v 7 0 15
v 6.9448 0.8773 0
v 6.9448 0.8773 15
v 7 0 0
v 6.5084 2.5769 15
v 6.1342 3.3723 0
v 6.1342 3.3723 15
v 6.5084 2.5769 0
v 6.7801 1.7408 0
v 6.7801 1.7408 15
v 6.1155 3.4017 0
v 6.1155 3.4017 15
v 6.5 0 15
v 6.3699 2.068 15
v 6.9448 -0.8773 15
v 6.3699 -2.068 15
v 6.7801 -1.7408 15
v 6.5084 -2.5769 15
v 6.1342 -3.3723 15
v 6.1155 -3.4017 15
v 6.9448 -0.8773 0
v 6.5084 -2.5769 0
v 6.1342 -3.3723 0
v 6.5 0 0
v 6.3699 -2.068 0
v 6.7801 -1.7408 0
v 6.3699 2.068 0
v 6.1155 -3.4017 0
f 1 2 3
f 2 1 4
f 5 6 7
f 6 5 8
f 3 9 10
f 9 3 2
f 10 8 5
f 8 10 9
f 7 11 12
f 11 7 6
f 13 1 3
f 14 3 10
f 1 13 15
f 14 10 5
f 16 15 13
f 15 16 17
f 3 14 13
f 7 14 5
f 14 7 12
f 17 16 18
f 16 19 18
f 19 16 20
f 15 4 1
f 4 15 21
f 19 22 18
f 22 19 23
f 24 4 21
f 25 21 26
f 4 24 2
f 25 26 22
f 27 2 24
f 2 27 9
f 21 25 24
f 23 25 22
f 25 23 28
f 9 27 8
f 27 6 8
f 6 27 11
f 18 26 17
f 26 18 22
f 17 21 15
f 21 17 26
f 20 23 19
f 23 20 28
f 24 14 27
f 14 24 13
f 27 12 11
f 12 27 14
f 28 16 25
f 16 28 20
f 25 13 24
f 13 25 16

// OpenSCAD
$fn = 50;


difference() {
	union() {
		cylinder(h = 15, r = 7.0000000000);
		translate(v = [-13.0000000000, 0, 0]) {
			cylinder(h = 15, r = 7.0000000000);
		}
	}
	union() {
		cylinder(h = 15, r = 3.2500000000);
		cylinder(h = 15, r = 1.8000000000);
		cylinder(h = 15, r = 1.8000000000);
		cylinder(h = 15, r = 1.8000000000);
		translate(v = [-17.5000000000, 0, 0]) {
			hull() {
				translate(v = [-3.7500000000, 0.0000000000, 0]) {
					cylinder(h = 15, r = 10.5000000000);
				}
				translate(v = [3.7500000000, 0.0000000000, 0]) {
					cylinder(h = 15, r = 10.5000000000);
				}
				translate(v = [-3.7500000000, -0.0000000000, 0]) {
					cylinder(h = 15, r = 10.5000000000);
				}
				translate(v = [3.7500000000, -0.0000000000, 0]) {
					cylinder(h = 15, r = 10.5000000000);
				}
			}
		}
		translate(v = [-10.0000000000, 0, 0.0000000000]) {
			cylinder(h = 15, r = 16.5000000000);
		}
	}
}
